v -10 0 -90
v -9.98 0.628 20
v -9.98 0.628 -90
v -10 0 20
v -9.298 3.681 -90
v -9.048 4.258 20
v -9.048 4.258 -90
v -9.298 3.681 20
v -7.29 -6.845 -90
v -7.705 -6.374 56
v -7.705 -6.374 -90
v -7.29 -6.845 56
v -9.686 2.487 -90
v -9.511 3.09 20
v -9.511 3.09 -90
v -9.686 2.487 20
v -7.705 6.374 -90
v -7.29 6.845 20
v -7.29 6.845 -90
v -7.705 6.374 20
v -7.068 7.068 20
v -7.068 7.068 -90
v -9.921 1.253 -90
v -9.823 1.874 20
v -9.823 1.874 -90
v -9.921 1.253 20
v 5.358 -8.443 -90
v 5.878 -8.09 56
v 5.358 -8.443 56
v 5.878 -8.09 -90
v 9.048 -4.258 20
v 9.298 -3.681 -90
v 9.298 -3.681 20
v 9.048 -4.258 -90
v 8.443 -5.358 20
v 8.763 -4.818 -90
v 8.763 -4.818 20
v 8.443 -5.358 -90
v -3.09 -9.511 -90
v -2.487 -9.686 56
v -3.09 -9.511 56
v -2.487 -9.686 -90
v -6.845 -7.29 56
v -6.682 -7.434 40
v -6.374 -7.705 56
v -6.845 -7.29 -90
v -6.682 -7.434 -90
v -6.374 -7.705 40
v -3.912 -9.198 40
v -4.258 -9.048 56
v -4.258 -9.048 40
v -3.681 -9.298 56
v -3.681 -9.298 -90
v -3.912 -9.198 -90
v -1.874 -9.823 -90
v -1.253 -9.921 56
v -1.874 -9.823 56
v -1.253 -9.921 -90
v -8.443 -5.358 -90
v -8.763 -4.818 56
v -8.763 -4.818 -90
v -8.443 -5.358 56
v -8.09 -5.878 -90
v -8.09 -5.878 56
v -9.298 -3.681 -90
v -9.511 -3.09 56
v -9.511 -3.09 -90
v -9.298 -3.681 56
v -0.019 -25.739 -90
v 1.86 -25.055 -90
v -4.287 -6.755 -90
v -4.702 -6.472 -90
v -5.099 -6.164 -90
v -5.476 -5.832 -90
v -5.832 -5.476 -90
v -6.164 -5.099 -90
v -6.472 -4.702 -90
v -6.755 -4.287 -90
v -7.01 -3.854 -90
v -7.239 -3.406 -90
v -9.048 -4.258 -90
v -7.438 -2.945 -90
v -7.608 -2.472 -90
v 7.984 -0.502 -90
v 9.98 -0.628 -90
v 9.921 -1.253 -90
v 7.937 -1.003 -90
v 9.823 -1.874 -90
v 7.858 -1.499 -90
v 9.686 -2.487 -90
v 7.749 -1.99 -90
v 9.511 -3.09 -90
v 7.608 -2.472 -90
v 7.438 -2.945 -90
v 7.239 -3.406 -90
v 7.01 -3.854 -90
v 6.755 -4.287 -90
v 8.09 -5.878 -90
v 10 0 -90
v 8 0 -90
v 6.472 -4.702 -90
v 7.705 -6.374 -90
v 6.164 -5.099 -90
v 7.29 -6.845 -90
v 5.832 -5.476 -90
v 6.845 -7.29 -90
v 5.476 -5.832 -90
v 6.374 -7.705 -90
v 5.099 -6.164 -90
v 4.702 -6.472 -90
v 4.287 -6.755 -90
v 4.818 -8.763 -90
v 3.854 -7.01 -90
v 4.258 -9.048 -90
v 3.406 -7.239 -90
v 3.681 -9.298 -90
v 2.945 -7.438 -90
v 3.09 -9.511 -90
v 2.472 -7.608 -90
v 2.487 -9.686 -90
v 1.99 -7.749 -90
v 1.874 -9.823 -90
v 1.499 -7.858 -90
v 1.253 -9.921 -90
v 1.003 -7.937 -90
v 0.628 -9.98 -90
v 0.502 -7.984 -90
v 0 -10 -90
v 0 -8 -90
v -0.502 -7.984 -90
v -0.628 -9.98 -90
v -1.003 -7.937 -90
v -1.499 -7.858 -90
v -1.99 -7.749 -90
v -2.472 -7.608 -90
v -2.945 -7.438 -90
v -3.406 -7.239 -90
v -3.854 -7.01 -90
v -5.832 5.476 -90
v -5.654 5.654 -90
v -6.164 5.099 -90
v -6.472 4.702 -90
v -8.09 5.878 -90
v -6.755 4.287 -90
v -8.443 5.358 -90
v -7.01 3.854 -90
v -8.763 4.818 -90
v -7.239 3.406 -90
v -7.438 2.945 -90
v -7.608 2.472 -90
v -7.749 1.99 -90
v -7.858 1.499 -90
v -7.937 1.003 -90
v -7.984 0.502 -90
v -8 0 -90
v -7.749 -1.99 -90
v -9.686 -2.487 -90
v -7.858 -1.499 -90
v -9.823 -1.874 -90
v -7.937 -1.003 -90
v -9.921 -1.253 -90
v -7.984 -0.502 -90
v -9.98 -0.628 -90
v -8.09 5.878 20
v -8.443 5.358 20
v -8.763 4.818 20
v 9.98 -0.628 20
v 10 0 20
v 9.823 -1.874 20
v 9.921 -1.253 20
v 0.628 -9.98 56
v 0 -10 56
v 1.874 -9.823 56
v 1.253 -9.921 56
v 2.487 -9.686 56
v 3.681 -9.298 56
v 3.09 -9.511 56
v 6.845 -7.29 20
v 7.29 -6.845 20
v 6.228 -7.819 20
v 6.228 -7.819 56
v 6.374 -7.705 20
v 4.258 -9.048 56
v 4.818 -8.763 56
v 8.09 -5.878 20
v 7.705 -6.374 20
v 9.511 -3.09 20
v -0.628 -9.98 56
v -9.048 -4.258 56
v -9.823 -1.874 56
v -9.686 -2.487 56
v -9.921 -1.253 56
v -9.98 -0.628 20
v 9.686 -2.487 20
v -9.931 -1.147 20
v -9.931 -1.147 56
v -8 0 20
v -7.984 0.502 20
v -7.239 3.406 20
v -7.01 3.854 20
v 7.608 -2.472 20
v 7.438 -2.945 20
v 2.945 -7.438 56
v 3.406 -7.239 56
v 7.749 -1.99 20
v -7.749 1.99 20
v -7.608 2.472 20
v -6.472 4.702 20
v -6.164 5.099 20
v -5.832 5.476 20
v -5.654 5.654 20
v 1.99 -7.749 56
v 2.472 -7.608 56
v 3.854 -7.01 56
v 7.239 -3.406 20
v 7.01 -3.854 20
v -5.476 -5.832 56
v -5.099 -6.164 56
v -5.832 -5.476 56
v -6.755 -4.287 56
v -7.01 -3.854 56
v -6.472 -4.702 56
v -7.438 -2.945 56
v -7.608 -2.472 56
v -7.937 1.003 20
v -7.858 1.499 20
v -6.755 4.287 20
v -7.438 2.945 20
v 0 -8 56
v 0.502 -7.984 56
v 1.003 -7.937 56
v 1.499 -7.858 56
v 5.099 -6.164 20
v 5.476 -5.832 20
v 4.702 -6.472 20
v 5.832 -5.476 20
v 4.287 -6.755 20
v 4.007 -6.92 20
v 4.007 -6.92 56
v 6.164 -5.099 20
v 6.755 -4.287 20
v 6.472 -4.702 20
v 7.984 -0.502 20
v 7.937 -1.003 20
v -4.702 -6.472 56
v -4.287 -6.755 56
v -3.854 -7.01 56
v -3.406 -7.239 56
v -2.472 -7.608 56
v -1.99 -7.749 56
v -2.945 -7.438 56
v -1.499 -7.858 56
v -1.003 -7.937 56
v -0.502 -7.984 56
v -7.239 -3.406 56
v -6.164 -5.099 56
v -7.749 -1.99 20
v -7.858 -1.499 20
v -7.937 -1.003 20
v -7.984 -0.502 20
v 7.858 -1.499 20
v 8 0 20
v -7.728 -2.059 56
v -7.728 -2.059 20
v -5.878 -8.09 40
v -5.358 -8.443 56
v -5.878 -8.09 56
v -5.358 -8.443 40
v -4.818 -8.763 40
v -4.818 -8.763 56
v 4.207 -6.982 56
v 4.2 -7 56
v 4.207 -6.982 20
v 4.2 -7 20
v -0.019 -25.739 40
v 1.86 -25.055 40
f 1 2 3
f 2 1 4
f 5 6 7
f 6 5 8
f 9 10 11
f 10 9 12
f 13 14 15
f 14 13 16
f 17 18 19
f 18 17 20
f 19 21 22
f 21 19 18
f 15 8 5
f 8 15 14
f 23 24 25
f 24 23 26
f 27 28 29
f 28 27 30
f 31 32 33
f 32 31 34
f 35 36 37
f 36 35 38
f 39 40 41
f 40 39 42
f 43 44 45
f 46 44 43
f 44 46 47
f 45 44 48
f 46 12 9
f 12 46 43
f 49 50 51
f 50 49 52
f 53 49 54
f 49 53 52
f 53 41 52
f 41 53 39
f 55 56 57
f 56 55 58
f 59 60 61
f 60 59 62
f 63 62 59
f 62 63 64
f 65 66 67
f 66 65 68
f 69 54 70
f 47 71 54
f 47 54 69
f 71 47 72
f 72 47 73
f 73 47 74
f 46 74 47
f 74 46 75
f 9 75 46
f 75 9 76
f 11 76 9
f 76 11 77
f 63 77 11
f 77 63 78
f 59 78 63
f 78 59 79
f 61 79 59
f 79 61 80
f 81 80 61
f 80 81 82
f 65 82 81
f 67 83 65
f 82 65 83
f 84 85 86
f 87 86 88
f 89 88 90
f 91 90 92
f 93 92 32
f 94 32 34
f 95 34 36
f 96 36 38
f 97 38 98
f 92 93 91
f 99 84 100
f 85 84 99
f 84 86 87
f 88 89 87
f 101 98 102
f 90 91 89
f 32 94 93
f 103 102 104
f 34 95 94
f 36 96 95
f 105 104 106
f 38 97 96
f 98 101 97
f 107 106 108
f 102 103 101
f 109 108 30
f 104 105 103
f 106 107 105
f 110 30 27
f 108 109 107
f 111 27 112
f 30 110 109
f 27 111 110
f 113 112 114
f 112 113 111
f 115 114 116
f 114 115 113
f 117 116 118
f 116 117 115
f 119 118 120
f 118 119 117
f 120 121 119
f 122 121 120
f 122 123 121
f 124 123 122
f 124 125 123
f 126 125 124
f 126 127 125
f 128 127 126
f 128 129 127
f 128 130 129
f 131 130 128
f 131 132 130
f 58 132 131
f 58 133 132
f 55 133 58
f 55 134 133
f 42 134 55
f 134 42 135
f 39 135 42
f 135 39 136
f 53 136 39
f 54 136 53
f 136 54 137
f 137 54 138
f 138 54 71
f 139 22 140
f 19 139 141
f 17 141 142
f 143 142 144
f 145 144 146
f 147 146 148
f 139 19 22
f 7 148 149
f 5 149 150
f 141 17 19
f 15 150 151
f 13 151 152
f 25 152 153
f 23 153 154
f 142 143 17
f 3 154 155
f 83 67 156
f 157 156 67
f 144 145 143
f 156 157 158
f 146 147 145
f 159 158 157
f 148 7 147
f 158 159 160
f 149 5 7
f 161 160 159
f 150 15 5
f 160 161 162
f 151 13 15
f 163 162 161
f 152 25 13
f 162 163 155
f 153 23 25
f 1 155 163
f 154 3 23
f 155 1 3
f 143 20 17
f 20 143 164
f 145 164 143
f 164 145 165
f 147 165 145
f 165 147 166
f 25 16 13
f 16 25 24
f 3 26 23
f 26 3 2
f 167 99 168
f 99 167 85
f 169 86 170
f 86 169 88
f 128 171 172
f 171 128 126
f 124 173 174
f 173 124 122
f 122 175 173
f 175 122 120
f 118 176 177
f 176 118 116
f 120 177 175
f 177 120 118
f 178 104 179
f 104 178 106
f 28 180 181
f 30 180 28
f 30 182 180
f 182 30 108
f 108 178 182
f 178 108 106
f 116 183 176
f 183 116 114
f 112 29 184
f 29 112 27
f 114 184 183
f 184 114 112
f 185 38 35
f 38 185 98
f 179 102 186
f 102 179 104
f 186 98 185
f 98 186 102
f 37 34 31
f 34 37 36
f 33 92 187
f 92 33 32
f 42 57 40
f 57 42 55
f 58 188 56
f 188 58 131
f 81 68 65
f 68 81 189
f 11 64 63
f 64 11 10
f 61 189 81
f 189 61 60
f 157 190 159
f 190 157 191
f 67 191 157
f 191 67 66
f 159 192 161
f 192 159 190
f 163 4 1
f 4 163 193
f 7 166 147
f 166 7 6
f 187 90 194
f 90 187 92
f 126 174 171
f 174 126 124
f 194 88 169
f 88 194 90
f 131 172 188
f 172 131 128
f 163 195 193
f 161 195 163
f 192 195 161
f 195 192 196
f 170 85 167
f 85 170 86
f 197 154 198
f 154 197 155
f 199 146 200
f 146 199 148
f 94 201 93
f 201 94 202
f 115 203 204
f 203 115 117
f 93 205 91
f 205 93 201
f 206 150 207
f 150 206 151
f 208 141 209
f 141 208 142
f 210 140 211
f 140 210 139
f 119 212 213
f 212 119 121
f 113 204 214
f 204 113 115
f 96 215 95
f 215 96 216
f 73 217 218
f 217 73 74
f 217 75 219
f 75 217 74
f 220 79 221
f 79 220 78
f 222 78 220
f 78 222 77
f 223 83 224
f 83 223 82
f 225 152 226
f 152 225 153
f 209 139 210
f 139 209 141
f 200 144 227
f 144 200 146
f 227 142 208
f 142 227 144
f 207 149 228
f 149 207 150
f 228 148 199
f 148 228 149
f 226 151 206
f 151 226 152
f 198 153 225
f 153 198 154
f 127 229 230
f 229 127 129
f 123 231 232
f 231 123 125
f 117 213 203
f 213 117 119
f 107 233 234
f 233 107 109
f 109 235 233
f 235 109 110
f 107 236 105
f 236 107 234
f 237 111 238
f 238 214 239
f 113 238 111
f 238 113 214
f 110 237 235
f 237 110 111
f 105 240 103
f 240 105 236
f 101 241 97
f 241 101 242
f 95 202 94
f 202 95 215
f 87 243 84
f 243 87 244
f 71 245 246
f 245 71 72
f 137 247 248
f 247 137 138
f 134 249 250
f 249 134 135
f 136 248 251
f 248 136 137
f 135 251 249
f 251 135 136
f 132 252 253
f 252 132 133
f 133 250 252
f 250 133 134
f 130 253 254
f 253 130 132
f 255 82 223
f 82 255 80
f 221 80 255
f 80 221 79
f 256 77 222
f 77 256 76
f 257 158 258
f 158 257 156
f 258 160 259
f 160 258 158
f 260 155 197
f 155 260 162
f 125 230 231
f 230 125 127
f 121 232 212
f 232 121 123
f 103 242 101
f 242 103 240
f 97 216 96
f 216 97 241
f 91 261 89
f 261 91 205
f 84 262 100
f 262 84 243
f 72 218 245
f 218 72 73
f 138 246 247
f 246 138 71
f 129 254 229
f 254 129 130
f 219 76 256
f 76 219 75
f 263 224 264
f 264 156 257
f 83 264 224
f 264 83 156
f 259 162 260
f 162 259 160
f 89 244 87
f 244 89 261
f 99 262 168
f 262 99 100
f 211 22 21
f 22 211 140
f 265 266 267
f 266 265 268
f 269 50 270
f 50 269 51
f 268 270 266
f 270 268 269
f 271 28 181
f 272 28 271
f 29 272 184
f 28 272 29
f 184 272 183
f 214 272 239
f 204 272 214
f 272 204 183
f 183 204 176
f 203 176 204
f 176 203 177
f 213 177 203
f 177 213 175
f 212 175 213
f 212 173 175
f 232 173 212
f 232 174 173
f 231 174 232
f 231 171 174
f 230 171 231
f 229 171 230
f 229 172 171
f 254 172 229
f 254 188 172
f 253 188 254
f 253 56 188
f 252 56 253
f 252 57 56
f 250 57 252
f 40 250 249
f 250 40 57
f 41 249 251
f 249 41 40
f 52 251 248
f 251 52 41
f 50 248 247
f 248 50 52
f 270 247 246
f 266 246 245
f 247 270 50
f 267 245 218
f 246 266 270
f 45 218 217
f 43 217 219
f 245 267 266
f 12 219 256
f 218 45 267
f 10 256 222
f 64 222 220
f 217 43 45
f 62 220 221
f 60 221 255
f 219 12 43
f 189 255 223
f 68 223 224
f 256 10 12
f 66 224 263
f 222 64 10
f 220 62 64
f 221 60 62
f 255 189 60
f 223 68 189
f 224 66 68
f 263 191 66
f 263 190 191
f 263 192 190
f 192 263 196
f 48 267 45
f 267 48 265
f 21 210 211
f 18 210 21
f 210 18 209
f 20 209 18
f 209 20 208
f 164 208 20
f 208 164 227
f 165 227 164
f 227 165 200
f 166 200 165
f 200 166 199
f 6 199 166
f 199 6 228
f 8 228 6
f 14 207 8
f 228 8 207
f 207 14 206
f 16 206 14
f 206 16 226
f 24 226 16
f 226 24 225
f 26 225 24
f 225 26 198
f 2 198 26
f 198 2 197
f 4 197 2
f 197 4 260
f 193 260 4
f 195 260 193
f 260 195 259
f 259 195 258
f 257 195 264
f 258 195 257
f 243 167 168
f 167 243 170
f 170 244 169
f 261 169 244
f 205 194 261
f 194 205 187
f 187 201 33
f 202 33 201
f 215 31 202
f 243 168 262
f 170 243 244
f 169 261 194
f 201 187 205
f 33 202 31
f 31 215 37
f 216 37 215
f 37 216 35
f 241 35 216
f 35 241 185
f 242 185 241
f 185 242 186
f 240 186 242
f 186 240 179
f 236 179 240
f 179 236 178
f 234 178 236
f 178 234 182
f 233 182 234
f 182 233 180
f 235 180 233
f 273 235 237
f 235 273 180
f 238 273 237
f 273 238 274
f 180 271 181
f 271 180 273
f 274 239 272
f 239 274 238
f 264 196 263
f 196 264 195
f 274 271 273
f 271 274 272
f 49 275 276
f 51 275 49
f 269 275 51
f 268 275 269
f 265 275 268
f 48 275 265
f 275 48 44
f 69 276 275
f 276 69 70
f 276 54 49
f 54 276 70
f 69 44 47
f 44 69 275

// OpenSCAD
union(){
    translate([0, 0, -90]) {
        difference() {
            cylinder(h = 100, d = 20, $fn = 100);

            cylinder(h = 100, d = 16, $fn = 100);
                
            cube([10, 10, 100]);
            rotate([0, 0, 45]) {
                cube([10, 10, 100]);
            }
        }
    }

    translate([0, 0, 10]) {
        difference() {
            cylinder(h = 46, d = 20, $fn = 100);
            cylinder(h = 46, d = 16, $fn = 100);
            
            cube([10, 10, 20]);
            rotate([0, 0, 45]) {
                cube([10, 10, 20]);
            }
            
            translate([6.2, -7.8, 10]){    
                rotate([0, 0, 67.5]) {
                    cube([17.4, 17.4, 46]);
                }
            }
            
            translate([9.2, -9.05, 10]){    
                rotate([0, 0, 67.5]) {
                    cube([17.4, 17.4, 46]);
                }
            }
            
            translate([4.2, -7, 10]){    
                rotate([0, 0, 67.5]) {
                    cube([17.4, 17.4, 46]);
                }
            }
        }
    }
    
    translate([-2.5, -16, -25]) {
        rotate([0, 0, 110]) {
            cube([20, 2, 130], center = true);
        }
    }
}
